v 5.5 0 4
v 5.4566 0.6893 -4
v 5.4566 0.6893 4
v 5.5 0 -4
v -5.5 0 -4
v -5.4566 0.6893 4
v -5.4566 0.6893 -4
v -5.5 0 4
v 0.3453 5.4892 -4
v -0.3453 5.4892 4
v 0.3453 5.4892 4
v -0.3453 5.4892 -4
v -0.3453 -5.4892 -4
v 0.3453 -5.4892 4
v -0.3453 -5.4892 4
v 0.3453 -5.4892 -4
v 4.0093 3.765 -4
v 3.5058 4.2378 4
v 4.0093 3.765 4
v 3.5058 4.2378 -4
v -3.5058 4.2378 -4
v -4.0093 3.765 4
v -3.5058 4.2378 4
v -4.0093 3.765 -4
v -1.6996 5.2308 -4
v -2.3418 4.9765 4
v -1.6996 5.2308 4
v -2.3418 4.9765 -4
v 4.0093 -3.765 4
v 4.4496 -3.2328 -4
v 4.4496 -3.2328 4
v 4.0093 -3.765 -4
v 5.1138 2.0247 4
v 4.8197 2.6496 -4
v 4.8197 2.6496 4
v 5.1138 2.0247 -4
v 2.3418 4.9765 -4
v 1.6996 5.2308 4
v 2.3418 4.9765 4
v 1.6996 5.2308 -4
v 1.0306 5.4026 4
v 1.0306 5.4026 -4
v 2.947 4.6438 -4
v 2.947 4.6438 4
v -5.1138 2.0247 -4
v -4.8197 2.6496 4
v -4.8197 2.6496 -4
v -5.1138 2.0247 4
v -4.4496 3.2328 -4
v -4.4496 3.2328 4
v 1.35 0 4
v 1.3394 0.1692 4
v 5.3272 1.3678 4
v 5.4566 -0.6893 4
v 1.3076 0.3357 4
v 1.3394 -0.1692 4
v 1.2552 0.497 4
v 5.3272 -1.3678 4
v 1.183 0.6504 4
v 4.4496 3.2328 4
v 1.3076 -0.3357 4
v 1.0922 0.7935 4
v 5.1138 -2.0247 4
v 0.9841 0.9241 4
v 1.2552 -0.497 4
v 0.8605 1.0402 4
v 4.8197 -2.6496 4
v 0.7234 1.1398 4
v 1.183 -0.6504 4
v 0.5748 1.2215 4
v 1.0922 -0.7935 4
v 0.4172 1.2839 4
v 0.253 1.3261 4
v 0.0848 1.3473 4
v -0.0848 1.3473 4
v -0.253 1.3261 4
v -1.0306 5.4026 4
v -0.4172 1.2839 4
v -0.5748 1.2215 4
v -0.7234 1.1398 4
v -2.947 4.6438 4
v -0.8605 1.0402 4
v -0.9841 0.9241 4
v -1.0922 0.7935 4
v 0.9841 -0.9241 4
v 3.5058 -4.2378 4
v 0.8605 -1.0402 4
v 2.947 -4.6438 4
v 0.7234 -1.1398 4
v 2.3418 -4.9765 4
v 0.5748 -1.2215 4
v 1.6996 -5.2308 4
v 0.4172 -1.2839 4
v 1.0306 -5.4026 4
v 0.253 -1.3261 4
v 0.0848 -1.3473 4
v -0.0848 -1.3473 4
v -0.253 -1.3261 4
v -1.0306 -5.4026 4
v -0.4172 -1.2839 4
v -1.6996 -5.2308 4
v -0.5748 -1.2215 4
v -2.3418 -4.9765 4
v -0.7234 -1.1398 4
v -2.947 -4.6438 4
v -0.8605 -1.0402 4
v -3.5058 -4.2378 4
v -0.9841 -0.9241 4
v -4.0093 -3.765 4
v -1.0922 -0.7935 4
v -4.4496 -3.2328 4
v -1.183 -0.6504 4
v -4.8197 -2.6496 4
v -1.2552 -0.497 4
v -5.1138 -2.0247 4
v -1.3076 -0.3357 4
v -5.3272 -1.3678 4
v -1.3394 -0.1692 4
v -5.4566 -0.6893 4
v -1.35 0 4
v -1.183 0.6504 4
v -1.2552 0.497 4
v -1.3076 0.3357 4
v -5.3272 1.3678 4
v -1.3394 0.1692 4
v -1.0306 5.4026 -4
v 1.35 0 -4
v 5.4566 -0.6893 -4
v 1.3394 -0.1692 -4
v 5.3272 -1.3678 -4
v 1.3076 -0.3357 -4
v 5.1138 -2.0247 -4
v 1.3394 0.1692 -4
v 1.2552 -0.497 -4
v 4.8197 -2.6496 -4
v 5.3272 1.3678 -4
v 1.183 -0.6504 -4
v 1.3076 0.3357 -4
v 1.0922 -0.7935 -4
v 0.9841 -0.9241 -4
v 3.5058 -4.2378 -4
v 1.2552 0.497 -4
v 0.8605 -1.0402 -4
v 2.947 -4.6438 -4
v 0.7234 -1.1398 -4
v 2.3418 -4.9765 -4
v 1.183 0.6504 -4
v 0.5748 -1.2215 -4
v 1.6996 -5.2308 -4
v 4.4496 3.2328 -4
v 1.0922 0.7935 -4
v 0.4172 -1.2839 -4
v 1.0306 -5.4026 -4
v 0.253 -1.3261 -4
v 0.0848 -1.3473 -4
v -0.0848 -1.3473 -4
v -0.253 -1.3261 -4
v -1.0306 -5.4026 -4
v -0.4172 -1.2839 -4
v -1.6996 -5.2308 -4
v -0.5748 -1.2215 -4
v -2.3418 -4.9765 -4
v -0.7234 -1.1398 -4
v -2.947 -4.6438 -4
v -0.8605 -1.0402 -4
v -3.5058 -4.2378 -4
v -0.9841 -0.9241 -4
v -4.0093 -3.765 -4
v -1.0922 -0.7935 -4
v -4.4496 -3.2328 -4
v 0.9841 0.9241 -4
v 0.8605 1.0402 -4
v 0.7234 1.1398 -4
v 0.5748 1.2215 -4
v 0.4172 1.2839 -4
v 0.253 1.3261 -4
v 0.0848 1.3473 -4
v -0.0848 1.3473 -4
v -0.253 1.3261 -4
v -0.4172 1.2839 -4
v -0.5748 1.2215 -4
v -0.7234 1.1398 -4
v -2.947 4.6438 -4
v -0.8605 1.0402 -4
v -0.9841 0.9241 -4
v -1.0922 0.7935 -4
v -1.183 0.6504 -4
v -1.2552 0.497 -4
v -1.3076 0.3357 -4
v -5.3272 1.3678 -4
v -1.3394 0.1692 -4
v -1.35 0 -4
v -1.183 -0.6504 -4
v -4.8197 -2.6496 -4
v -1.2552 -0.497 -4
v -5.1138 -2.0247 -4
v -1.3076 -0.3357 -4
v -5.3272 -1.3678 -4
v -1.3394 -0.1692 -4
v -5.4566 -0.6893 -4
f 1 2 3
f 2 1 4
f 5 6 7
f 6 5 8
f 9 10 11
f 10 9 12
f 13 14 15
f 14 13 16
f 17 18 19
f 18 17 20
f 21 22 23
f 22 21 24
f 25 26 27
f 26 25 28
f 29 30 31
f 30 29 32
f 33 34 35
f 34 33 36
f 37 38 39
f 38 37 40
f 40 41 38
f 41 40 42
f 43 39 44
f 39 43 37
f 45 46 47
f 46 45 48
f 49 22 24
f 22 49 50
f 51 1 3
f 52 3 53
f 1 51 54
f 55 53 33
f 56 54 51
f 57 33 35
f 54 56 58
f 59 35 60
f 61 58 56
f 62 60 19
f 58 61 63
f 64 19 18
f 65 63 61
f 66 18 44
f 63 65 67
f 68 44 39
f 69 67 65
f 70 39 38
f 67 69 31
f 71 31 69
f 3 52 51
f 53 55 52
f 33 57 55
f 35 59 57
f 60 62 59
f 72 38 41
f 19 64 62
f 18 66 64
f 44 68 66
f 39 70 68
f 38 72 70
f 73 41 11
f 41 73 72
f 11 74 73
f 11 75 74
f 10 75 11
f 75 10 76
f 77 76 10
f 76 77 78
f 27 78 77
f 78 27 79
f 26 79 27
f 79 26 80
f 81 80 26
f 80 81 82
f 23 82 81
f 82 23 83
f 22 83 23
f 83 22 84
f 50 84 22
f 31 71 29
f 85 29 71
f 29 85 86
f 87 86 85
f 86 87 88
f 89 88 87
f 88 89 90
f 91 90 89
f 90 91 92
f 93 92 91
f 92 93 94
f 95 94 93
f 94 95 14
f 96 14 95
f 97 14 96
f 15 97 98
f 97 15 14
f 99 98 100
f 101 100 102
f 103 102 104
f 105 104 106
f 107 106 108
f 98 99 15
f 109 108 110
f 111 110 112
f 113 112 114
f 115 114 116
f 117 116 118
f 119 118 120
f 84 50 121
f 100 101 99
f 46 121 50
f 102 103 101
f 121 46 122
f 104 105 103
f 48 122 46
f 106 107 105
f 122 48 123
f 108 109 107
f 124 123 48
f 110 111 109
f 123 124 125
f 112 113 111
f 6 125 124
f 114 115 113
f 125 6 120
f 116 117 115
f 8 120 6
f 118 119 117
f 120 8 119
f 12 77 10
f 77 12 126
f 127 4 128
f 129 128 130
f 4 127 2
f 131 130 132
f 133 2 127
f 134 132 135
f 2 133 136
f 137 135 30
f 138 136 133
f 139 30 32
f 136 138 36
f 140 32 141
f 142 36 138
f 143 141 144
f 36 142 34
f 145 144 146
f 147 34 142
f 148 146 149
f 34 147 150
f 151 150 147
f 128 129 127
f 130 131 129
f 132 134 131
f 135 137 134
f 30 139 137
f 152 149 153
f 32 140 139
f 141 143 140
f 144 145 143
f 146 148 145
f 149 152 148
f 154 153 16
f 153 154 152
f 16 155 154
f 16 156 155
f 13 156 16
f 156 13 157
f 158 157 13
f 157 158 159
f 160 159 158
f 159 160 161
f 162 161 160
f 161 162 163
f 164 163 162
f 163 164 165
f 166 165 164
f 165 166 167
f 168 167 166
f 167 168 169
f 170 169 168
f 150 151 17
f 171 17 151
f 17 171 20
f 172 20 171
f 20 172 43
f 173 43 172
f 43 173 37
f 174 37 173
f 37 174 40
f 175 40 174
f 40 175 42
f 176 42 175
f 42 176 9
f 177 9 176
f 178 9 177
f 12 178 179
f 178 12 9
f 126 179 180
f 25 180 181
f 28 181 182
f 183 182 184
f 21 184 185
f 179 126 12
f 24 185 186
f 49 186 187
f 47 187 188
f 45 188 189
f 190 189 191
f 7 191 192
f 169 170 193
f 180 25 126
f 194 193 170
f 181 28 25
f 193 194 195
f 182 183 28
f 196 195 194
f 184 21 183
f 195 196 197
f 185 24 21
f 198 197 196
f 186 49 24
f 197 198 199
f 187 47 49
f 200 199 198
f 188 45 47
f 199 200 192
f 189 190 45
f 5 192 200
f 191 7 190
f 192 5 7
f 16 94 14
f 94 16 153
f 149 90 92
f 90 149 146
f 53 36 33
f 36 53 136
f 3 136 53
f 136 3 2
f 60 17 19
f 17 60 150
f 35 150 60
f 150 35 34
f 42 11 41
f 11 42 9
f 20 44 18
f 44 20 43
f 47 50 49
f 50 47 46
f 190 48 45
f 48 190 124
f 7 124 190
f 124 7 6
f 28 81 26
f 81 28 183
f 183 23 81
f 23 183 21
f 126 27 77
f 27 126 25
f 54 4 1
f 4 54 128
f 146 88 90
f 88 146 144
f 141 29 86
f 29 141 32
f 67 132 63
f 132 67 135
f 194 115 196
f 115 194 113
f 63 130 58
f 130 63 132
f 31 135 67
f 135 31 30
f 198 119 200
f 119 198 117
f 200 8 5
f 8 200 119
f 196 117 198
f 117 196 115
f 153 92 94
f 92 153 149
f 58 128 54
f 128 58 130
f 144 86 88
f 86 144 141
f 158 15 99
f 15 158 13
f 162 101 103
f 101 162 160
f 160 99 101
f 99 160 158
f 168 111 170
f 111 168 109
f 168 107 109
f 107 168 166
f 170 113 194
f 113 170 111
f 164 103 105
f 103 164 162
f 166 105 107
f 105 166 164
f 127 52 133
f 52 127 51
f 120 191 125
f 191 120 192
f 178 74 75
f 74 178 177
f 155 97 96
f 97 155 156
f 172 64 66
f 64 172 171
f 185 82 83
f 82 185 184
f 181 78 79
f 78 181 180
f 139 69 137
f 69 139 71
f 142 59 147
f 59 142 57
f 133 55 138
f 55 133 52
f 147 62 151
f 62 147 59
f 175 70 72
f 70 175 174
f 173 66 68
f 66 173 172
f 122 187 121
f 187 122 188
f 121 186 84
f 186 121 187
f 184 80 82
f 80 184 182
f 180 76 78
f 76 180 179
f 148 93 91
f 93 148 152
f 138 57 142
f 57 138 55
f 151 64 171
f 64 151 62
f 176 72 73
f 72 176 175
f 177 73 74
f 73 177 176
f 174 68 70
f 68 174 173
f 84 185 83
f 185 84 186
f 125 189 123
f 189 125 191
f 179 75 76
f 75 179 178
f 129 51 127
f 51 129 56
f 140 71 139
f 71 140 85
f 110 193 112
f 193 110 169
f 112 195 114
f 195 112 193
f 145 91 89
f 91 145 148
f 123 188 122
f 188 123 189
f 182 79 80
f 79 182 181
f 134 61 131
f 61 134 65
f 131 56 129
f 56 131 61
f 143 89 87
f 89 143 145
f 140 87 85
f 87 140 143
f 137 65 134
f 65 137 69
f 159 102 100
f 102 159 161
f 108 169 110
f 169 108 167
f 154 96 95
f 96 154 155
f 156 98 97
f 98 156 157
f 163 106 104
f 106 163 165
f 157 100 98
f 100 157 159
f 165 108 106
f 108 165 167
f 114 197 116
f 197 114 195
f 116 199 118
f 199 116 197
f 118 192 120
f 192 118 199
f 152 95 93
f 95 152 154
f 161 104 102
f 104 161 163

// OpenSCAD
$fn = 50;


difference() {
	union() {
		translate(v = [0, 0, -4.0000000000]) {
			cylinder(h = 8, r = 5.5000000000);
		}
	}
	union() {
		translate(v = [0, 0, -100.0000000000]) {
			cylinder(h = 200, r = 1.3500000000);
		}
	}
}
